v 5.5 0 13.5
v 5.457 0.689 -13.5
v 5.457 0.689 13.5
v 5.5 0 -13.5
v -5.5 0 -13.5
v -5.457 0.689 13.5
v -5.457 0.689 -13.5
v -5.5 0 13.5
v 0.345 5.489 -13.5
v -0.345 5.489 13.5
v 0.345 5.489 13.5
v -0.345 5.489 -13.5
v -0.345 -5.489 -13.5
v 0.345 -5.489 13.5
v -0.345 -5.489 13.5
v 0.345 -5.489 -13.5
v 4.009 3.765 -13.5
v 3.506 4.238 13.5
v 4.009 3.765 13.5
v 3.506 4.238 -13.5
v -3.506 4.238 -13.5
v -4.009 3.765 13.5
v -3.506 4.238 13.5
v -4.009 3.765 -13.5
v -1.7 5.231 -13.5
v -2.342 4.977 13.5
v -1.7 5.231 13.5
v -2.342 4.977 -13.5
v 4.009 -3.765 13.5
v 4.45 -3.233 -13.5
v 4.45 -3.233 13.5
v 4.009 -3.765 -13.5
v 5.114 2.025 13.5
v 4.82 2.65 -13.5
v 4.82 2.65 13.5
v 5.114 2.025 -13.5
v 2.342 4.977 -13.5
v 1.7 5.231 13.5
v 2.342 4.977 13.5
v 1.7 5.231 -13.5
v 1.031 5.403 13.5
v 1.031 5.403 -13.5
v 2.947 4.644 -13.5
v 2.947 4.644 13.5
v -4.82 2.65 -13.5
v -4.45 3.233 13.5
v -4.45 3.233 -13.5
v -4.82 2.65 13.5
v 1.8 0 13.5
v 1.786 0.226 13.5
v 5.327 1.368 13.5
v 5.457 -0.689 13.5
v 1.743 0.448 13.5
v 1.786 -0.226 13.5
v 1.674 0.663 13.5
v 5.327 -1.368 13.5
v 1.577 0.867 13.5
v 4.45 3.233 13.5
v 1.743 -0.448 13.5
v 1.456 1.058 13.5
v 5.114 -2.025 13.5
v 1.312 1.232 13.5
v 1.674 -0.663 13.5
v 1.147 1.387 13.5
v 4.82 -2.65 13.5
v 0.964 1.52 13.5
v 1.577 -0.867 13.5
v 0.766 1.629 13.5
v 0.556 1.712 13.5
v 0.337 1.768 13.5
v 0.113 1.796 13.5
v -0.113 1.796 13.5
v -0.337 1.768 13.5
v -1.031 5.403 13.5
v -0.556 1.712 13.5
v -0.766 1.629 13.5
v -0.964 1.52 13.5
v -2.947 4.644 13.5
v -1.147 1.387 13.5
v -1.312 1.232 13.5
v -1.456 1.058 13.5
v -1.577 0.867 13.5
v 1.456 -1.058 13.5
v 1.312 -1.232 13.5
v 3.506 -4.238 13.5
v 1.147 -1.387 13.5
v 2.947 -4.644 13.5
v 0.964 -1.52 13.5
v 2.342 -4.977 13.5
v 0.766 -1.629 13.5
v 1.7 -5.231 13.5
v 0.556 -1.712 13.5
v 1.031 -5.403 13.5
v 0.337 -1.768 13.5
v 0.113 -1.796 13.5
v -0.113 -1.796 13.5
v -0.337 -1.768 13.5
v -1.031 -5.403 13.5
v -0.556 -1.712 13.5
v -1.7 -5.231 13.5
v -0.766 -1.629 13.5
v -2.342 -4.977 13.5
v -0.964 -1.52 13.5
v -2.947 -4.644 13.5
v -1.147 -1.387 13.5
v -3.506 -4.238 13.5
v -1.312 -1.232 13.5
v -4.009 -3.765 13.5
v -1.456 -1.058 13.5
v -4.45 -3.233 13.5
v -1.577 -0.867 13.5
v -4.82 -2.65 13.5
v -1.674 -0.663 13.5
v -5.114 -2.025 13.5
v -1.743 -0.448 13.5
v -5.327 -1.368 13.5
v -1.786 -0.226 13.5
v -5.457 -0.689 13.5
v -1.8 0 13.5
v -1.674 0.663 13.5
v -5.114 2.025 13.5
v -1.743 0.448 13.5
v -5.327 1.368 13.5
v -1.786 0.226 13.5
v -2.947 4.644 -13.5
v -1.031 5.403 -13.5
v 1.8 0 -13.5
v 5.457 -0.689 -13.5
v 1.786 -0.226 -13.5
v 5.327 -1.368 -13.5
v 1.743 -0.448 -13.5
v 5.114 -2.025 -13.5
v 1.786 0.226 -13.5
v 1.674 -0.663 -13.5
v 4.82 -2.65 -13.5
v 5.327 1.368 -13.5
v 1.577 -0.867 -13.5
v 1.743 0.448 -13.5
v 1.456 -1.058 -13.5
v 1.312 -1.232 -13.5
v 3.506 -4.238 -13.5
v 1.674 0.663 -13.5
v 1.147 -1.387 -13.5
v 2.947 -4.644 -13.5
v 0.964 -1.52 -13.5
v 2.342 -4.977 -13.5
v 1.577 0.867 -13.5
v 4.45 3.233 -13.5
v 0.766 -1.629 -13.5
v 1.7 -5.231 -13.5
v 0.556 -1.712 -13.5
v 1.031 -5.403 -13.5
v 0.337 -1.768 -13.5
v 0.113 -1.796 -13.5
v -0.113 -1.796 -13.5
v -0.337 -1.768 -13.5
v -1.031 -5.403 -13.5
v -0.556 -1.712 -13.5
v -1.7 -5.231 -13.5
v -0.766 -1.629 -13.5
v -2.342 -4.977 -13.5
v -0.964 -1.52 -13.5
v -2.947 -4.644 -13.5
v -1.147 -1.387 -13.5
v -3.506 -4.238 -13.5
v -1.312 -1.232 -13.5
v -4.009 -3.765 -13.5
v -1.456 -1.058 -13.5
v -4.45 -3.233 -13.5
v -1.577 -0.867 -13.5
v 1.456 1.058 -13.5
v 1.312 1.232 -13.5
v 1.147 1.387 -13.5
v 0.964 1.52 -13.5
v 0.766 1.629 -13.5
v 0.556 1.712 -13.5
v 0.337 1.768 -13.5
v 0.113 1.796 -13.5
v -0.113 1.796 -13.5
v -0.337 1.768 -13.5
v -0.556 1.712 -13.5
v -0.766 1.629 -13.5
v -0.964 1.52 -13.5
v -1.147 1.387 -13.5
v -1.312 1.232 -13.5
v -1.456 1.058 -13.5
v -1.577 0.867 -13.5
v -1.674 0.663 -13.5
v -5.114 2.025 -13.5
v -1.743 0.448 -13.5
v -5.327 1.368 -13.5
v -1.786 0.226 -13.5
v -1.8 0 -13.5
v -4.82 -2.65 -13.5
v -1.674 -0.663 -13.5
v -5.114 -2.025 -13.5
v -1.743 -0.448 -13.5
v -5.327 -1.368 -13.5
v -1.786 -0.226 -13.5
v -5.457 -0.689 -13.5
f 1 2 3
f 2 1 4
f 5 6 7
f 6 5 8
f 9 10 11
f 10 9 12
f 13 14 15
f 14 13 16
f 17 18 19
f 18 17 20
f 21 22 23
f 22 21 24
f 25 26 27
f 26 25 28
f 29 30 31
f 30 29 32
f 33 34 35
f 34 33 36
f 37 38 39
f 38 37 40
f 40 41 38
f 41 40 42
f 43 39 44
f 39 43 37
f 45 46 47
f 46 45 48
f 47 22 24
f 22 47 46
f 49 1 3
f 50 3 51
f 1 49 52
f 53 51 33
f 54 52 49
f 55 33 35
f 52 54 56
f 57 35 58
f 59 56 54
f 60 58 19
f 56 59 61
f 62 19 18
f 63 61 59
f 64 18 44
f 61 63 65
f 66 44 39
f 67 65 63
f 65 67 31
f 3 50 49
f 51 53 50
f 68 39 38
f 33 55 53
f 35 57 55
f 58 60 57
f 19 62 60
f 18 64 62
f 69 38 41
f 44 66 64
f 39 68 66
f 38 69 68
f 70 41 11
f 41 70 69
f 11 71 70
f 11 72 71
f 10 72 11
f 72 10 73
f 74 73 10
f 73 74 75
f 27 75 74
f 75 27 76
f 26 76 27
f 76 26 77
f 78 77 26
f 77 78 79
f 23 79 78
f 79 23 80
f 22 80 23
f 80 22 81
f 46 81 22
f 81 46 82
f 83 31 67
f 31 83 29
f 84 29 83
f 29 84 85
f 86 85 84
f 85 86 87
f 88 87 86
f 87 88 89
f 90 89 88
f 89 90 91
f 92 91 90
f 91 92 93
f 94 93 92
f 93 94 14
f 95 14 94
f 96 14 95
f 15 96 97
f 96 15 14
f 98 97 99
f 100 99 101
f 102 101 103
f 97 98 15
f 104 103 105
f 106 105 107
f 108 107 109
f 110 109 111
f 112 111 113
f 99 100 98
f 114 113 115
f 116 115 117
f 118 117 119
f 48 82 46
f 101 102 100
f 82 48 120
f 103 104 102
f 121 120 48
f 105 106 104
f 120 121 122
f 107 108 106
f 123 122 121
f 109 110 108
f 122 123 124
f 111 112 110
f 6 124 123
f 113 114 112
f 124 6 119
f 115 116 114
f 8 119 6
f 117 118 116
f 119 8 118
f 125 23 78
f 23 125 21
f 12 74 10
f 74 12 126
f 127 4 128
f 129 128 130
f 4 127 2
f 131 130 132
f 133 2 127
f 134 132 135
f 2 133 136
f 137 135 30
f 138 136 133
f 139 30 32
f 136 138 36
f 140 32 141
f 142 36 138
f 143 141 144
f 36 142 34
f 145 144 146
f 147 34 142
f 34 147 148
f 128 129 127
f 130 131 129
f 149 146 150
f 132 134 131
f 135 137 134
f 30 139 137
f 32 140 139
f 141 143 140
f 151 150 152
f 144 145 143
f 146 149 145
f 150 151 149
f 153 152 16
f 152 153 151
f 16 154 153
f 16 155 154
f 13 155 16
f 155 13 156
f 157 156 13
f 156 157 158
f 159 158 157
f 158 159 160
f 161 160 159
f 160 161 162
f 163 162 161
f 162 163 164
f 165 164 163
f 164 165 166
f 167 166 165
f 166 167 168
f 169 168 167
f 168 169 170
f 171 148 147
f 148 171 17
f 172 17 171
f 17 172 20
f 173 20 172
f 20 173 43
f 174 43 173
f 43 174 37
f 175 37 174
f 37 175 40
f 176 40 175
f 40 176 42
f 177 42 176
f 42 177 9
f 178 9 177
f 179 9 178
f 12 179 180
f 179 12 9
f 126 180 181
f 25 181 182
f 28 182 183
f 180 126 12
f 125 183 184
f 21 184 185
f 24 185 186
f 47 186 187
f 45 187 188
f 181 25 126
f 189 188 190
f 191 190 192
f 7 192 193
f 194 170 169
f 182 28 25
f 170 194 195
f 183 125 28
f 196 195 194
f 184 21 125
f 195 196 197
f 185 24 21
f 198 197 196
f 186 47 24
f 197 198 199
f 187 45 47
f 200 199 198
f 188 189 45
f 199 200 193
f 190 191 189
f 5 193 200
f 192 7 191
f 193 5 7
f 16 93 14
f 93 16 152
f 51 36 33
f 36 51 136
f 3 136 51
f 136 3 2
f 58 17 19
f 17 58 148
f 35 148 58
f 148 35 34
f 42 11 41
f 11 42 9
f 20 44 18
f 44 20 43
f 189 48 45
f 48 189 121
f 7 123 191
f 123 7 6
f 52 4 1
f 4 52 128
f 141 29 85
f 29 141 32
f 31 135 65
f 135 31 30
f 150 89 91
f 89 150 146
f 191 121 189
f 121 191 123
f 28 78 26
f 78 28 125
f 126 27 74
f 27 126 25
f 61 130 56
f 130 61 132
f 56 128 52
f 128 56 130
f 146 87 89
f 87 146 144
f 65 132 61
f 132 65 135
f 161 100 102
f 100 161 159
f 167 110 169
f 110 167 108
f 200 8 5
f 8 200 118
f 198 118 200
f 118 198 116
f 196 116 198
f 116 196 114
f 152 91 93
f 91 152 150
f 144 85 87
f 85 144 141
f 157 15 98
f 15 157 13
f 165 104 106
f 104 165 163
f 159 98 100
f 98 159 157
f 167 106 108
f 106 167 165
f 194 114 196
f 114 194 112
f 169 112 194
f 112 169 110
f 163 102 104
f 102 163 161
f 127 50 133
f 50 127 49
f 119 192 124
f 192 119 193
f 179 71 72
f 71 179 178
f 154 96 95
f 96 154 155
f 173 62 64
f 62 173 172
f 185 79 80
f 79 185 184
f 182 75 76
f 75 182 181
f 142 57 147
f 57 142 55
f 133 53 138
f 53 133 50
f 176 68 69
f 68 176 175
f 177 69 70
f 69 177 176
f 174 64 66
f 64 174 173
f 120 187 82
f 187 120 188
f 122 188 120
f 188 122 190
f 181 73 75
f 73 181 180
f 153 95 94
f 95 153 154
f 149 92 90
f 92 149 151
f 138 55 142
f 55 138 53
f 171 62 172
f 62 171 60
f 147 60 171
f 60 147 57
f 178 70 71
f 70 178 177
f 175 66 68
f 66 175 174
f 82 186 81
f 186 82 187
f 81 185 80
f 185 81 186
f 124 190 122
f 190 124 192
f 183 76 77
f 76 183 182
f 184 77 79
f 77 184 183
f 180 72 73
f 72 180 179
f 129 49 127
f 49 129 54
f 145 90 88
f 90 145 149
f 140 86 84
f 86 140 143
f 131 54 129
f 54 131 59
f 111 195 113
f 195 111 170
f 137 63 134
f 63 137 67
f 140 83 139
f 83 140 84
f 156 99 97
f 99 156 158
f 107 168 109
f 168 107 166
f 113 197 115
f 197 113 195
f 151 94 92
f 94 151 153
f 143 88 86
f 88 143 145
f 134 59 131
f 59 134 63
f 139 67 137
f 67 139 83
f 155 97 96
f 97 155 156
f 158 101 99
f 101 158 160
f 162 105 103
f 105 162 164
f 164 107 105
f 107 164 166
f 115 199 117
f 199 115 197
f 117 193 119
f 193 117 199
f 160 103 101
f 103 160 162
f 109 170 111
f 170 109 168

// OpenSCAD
$fn = 50;


difference() {
	union() {
		translate(v = [0, 0, -13.5000000000]) {
			cylinder(h = 27, r = 5.5000000000);
		}
	}
	union() {
		translate(v = [0, 0, -100.0000000000]) {
			cylinder(h = 200, r = 1.8000000000);
		}
	}
}
